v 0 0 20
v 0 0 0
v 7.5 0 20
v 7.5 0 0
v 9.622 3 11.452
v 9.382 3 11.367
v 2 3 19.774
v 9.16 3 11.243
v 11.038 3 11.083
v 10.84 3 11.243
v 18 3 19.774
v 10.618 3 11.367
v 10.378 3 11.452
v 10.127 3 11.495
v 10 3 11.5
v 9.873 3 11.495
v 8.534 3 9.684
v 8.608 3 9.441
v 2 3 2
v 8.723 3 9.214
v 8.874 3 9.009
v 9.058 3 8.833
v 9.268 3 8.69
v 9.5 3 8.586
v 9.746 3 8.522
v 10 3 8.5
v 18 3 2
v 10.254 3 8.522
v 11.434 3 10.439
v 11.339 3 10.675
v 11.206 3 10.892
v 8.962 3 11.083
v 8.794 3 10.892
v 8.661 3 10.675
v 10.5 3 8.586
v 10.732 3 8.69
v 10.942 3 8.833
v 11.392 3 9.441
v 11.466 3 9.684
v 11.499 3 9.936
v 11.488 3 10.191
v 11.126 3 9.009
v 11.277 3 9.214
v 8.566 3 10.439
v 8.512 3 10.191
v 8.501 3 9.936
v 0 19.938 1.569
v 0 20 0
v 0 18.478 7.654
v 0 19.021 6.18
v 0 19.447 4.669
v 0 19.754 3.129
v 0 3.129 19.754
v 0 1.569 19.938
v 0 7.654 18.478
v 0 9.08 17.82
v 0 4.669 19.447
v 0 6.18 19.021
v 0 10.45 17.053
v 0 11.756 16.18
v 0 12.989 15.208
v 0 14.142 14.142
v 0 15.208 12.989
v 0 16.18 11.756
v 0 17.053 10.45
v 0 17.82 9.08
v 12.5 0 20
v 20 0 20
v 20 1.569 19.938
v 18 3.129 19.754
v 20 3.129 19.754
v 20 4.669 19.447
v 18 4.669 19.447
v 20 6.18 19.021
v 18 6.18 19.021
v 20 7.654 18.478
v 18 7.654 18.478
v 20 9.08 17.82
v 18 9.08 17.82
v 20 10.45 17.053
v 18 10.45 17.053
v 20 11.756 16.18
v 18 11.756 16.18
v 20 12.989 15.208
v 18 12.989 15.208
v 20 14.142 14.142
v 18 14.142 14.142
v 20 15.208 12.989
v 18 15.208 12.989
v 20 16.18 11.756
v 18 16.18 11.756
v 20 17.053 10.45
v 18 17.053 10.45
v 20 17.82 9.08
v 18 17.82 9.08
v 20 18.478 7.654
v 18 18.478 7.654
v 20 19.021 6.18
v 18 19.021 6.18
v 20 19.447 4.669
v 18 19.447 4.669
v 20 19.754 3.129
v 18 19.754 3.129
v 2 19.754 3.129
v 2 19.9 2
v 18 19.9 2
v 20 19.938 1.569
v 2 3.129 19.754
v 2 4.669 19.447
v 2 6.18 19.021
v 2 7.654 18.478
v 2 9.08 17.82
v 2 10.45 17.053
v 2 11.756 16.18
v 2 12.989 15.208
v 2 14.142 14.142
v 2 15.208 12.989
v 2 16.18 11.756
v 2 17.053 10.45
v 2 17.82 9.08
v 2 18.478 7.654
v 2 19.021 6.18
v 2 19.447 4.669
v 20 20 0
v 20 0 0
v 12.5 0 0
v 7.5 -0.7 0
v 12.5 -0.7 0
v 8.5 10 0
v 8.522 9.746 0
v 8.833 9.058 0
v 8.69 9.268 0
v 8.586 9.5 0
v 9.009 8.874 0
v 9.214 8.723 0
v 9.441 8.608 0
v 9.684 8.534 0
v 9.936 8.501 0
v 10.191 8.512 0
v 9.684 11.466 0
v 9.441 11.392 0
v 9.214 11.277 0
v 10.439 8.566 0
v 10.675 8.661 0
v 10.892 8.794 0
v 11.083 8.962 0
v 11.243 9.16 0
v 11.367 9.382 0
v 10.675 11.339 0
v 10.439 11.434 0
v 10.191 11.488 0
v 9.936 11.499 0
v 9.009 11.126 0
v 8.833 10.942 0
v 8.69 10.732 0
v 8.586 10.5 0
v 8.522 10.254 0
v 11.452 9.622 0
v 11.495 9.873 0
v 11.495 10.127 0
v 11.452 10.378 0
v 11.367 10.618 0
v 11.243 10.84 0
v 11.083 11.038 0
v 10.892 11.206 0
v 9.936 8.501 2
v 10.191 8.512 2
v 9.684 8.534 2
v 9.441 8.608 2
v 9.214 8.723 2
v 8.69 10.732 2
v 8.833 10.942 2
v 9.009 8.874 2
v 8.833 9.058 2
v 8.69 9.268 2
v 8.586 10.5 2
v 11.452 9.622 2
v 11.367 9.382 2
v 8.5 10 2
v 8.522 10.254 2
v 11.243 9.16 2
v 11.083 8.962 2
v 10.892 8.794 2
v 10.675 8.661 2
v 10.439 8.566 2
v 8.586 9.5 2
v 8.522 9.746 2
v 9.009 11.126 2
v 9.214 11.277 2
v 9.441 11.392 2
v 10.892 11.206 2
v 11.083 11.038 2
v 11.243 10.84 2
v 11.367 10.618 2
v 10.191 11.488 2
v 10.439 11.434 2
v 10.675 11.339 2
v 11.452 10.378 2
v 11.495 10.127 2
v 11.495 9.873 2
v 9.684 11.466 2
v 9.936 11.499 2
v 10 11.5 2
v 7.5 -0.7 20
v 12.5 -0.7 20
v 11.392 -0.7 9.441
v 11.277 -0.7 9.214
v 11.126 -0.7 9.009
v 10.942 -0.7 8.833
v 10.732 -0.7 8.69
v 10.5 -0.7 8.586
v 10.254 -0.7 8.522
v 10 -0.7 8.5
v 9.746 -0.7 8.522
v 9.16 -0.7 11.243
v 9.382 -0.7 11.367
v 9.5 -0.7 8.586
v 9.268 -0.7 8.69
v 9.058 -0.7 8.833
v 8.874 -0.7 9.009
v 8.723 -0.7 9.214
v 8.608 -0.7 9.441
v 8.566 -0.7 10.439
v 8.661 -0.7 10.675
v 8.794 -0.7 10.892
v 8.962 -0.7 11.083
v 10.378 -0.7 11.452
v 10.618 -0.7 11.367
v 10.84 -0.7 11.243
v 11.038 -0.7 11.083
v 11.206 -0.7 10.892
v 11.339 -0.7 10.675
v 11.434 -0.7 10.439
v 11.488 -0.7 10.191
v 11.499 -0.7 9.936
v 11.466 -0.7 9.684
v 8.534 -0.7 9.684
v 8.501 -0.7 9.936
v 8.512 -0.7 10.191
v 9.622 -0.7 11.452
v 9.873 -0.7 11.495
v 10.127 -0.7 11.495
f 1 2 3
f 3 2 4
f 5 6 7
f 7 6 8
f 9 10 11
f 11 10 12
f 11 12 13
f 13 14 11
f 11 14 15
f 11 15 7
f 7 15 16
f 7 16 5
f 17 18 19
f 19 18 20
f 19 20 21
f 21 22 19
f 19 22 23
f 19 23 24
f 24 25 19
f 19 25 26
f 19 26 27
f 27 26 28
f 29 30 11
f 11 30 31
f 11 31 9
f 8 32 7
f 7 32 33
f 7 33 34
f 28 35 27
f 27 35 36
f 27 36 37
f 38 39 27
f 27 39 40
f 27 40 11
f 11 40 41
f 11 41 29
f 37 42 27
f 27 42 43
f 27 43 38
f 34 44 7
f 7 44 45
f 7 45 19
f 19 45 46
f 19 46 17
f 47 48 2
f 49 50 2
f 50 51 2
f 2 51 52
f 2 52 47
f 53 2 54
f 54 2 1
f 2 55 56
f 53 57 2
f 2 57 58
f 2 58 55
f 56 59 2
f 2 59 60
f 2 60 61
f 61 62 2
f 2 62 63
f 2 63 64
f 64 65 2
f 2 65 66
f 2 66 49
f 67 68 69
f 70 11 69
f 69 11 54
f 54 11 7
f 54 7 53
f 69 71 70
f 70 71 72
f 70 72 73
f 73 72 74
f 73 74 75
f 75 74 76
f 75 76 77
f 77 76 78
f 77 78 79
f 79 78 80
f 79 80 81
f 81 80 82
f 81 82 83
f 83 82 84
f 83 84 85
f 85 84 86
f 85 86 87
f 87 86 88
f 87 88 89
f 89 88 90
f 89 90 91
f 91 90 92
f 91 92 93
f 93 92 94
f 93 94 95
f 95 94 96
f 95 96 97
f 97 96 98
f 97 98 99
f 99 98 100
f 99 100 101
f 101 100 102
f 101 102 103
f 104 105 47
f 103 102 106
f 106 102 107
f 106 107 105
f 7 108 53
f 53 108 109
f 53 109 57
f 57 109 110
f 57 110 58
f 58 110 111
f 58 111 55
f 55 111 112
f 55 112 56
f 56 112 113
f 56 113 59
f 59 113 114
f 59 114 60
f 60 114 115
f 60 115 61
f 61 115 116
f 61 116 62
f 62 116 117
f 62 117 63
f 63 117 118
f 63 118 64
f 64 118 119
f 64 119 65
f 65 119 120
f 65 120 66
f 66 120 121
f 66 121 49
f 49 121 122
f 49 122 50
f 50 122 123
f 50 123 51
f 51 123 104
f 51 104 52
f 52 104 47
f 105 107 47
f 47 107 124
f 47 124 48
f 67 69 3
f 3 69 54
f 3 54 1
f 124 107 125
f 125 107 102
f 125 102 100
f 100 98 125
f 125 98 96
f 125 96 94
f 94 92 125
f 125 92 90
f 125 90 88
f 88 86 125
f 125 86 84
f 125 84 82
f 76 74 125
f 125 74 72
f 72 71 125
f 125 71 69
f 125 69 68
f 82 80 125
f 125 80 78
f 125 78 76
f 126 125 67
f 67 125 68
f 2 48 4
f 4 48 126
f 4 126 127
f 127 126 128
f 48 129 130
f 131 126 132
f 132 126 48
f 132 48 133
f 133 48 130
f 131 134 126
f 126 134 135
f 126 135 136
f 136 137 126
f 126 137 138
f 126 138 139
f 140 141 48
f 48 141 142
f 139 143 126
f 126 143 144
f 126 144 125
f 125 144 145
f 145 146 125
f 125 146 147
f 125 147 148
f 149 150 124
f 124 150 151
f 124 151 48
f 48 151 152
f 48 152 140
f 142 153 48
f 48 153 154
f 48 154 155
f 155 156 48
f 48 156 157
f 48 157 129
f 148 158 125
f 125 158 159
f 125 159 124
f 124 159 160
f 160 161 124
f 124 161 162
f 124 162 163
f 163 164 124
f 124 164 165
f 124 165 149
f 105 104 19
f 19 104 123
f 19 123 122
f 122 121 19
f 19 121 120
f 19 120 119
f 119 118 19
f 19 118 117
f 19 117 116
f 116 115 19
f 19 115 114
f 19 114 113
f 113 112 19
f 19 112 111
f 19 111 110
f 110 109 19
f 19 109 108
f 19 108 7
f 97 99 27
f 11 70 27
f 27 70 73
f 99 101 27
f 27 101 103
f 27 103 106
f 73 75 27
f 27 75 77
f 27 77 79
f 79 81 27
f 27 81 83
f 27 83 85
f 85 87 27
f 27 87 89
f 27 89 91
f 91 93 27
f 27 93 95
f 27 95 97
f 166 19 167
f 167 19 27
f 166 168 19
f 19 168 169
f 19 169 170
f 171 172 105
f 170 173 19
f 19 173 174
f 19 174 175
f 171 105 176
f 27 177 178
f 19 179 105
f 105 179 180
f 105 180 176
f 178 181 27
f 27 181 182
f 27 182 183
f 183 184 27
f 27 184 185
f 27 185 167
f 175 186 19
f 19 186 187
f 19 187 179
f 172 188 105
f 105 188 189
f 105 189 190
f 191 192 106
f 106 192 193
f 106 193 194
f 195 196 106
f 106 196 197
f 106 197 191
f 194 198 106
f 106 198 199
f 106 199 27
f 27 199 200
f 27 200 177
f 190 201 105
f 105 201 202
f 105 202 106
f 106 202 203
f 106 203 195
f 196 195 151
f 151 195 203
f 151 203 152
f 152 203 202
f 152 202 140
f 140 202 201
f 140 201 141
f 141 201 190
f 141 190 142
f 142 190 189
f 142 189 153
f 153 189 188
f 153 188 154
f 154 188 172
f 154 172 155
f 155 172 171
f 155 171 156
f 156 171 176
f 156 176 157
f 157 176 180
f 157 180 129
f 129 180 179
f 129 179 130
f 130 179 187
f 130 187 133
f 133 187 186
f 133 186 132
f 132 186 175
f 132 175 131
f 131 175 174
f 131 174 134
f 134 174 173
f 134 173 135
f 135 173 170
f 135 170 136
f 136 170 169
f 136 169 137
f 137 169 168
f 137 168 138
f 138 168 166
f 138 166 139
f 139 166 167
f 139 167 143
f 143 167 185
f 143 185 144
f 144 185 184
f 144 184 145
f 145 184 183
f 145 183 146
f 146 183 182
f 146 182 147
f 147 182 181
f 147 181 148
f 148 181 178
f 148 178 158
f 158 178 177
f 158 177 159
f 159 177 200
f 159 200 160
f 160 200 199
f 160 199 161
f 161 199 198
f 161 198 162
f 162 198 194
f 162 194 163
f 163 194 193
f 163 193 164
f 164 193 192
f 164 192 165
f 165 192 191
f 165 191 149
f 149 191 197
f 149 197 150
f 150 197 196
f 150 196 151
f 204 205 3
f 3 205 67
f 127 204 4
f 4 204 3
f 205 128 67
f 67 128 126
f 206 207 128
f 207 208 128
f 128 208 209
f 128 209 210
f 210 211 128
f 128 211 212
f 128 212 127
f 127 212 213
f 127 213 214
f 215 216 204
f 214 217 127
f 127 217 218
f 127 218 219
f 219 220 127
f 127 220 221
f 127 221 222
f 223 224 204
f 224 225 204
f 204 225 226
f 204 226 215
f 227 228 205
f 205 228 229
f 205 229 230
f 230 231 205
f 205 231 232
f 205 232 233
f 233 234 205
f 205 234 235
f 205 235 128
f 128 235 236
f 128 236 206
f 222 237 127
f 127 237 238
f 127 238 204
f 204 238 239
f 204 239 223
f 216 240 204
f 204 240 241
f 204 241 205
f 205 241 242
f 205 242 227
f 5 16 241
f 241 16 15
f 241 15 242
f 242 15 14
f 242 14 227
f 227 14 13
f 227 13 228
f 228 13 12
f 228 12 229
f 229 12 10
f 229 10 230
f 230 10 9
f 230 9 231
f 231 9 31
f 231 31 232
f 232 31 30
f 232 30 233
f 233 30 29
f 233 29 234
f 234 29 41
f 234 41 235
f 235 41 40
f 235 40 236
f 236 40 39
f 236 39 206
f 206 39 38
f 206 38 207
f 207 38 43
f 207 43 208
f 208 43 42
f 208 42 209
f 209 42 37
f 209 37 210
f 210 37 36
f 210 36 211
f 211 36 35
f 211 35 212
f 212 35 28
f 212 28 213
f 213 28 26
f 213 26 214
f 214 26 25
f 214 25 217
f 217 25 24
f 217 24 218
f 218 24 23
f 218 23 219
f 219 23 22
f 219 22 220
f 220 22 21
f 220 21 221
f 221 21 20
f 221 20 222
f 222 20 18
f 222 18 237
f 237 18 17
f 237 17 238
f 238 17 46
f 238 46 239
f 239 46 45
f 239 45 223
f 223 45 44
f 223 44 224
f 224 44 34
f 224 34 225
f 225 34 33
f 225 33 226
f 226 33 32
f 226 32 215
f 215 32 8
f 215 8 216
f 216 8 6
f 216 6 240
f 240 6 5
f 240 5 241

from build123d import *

# Parameters (mm, degrees)
SKETCH_1_W          = 20
SKETCH_1_H          = 20
REVOLVE_1_ANGLE     = 90
SKETCH_2_W          = 16
SKETCH_2_H          = 18
CUT_EXTRUDE_1_DEPTH = 30
SKETCH_3_W          = 16
SKETCH_3_H          = 18
EXTRUDE_1_DEPTH     = 3
SKETCH_4_R          = 21
SKETCH_4_R_2        = 20
CUT_EXTRUDE_2_DEPTH = 35.641016151
SKETCH_5_R          = 1.5
CUT_EXTRUDE_3_DEPTH = 35.641016151
SKETCH_6_W          = 5
SKETCH_6_H          = 20
EXTRUDE_2_DEPTH     = 0.7
SKETCH_7_R          = 1.5
CUT_EXTRUDE_4_DEPTH = 100


with BuildPart() as part:
    # Эскиз1 → Повернуть1 (revolve)
    with BuildSketch(Plane.XY):
        with Locations((10, 10)):
            Rectangle(SKETCH_1_W, SKETCH_1_H)
    revolve(axis=Axis((0, 0, 0), (1, 0, 0)), revolution_arc=REVOLVE_1_ANGLE)

    # Эскиз2 → Вырез-Вытянуть1 (cut)
    with BuildSketch(Plane.XZ):
        with Locations((10, 11)):
            Rectangle(SKETCH_2_W, SKETCH_2_H)
    extrude(amount=-CUT_EXTRUDE_1_DEPTH, mode=Mode.SUBTRACT)

    # Эскиз3 → Бобышка-Вытянуть1 (add)
    with BuildSketch(Plane.XZ):
        with Locations((10, 11)):
            Rectangle(SKETCH_3_W, SKETCH_3_H)
    extrude(amount=-EXTRUDE_1_DEPTH)

    # Эскиз4 → Вырез-Вытянуть2 (cut, through all)
    with BuildSketch(Plane.ZY):
        Circle(SKETCH_4_R)
        Circle(SKETCH_4_R_2, mode=Mode.SUBTRACT)
    extrude(amount=-CUT_EXTRUDE_2_DEPTH, mode=Mode.SUBTRACT)

    # Эскиз5 → Вырез-Вытянуть3 (cut, through all)
    with BuildSketch(Plane(origin=(0, 0, 0), x_dir=(-1, 0, 0), z_dir=(0, 0, -1))):
        with Locations((-10, 10)):
            Circle(SKETCH_5_R)
    extrude(amount=-CUT_EXTRUDE_3_DEPTH, mode=Mode.SUBTRACT)

    # Эскиз6 → Бобышка-Вытянуть2 (add)
    with BuildSketch(Plane.XZ):
        with Locations((10, 10)):
            Rectangle(SKETCH_6_W, SKETCH_6_H)
    extrude(amount=EXTRUDE_2_DEPTH)

    # Эскиз7 → Вырез-Вытянуть4 (cut)
    with BuildSketch(Plane.XZ.offset(0.7)):
        with Locations(Location((10, 10, 0), (0, 0, 270))):
            Circle(SKETCH_7_R)
    extrude(amount=-CUT_EXTRUDE_4_DEPTH, mode=Mode.SUBTRACT)


solid = part.part
